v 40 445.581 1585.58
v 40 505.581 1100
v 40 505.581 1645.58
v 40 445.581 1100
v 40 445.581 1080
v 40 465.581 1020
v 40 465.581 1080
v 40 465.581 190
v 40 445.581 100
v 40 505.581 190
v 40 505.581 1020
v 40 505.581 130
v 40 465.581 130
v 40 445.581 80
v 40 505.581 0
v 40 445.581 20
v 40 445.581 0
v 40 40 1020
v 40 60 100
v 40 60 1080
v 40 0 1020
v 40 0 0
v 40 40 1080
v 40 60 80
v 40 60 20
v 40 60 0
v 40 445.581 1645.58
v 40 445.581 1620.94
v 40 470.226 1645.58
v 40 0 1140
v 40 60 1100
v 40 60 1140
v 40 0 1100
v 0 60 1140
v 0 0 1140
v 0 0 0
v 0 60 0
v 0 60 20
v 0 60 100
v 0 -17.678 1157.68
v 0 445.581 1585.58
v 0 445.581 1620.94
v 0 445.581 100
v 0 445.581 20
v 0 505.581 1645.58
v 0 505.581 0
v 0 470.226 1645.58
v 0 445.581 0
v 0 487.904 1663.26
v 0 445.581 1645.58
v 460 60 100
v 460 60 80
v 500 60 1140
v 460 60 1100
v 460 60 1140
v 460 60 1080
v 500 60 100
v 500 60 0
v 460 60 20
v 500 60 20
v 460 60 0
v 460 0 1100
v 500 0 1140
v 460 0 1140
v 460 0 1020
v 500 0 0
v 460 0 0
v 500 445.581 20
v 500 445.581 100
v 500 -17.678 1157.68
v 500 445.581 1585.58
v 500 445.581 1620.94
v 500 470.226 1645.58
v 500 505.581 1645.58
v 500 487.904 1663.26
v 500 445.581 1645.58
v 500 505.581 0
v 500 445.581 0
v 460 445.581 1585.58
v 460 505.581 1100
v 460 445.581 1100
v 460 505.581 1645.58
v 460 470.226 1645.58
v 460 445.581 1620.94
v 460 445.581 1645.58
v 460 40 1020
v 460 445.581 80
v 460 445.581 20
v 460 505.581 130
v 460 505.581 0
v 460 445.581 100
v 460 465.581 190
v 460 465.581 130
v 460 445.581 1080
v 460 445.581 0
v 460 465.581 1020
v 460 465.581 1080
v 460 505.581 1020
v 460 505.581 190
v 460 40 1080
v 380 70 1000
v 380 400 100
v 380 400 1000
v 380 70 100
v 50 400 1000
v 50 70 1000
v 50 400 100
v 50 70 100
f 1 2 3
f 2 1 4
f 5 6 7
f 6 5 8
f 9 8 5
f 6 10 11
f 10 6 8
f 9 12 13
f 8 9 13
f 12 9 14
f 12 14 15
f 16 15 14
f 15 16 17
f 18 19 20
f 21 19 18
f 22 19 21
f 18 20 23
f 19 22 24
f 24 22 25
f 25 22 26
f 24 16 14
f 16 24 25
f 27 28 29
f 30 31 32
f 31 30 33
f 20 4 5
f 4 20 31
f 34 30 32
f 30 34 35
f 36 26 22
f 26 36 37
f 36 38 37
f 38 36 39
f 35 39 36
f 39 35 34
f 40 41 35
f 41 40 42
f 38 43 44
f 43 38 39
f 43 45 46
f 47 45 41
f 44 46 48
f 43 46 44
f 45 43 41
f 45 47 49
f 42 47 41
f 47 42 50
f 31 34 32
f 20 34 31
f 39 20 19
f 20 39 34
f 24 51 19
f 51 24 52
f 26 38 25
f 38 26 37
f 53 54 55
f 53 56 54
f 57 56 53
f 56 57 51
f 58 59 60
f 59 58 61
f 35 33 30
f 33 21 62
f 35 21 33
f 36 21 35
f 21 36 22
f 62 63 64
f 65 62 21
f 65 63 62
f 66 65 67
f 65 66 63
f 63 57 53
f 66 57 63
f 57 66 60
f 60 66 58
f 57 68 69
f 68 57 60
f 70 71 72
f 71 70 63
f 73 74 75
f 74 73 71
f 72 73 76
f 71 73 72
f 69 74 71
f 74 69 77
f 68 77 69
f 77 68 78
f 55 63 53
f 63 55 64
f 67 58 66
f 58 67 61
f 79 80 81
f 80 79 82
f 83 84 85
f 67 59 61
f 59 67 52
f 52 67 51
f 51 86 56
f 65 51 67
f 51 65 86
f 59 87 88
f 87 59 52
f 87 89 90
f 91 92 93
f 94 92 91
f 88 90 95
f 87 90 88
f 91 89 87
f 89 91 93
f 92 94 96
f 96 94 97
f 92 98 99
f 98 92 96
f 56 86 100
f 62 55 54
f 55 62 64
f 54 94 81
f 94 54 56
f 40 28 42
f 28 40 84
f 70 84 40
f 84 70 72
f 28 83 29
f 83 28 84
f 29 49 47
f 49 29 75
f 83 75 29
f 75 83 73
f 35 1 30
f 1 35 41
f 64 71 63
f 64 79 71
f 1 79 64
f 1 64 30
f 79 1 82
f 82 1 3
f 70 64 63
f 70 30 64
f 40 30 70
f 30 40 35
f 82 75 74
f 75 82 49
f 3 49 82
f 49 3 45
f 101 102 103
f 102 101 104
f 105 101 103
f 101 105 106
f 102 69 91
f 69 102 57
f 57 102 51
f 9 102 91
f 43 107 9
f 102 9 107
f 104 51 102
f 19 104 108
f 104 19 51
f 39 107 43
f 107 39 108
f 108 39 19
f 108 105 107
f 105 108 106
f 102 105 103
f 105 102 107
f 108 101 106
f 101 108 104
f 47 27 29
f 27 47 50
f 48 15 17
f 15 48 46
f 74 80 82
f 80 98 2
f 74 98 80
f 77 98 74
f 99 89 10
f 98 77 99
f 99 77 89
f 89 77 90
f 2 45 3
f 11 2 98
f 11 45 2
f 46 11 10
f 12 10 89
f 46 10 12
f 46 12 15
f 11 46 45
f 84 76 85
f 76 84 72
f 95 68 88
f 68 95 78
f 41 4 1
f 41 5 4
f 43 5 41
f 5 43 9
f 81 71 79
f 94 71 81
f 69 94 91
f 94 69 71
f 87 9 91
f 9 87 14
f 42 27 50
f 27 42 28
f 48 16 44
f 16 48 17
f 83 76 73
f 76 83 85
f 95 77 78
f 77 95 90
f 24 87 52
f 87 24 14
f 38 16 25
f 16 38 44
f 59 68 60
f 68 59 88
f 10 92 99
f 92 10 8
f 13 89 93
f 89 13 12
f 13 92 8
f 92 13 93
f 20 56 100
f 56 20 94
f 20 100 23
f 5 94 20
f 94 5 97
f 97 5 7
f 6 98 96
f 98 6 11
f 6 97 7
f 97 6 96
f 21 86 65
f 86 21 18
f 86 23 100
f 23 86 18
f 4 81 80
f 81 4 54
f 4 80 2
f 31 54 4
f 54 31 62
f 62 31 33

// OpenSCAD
uprightX=40;
uprightY=60;
uprightIndent=uprightY/3;
IuprightIndent=uprightY-uprightIndent;
floorH=20; //thickness of board
floorOffset=uprightY+floorH+20; //height from ground the kaercher sits at
solarAngle=45; //front angle of solar roof
solarX=500; //panel Width
solarY=715; //panel Height
solarZ=25; //panel Depth
kaercherH=900; //approximate Kaercher bounding Height
kaercherX=330; //approximate Kaercher bounding Height
kaercherY=330;
kaercherHeadRoom=uprightY+20;
solarHpos=floorOffset+kaercherH+kaercherHeadRoom+uprightY;
//triangle sides
opposite = sin(solarAngle) * solarY;
adjacent = cos(solarAngle) * solarY;

//upright FL
cube([uprightX,uprightY,solarHpos]);
//upright FR
translate([solarX-uprightX,0,0]) cube([uprightX,uprightY,solarHpos]);
echo("2x front upright lengths= ",solarHpos);


// Panel / roof
translate([0,0,solarHpos])rotate([solarAngle,0,0])cube([solarX,solarY,solarZ]);

// Kaercher bounding box
translate ([uprightX+10,70,floorOffset]) color([1,1,0])cube([kaercherX,kaercherY,kaercherH]);

//upright BL
translate([0,adjacent-uprightY,0]) cube([uprightX,uprightY,solarHpos+opposite]);
//upright BR
translate([solarX-uprightX,adjacent-uprightY,0]) cube([uprightX,uprightY,solarHpos+opposite]);
echo("2x back upright lengths= ",solarHpos+opposite);

//floor
//sides
translate([0,IuprightIndent,floorOffset-floorH-uprightY]) cube([uprightX,adjacent-(2*uprightY)+(2*uprightIndent),uprightY]);
translate([solarX-uprightX,IuprightIndent,floorOffset-floorH-uprightY]) cube([uprightX,adjacent-(2*uprightY)+(2*uprightIndent),uprightY]);
echo("2x bottom sides length= ",adjacent-(2*uprightY)+(2*uprightIndent));
//bottom floor board
translate([0,uprightY,floorOffset-floorH]) cube([solarX,adjacent-(2*uprightY),floorH]);
echo("1x floor board XxY= ",solarX,adjacent-(2*uprightY));

//bottom back
translate([0,adjacent-uprightX,floorOffset-uprightY+(1.5*uprightY)]) cube([solarX,uprightX,uprightY]);
//top back
translate([0,adjacent-uprightX,floorOffset+kaercherH+kaercherHeadRoom-uprightY]) cube([solarX,uprightX,uprightY]);
//top front
translate([0,0,floorOffset+kaercherH+kaercherHeadRoom-uprightY]) cube([solarX,uprightX,uprightY]);
echo("3x back and front length= ",solarX);

//top shelf board
translate([uprightX,0,floorOffset+kaercherH+kaercherHeadRoom]) cube([solarX-(2*uprightX),adjacent,floorH]);
echo("1x shelf board XxY= ",solarX-(2*uprightX),adjacent);
